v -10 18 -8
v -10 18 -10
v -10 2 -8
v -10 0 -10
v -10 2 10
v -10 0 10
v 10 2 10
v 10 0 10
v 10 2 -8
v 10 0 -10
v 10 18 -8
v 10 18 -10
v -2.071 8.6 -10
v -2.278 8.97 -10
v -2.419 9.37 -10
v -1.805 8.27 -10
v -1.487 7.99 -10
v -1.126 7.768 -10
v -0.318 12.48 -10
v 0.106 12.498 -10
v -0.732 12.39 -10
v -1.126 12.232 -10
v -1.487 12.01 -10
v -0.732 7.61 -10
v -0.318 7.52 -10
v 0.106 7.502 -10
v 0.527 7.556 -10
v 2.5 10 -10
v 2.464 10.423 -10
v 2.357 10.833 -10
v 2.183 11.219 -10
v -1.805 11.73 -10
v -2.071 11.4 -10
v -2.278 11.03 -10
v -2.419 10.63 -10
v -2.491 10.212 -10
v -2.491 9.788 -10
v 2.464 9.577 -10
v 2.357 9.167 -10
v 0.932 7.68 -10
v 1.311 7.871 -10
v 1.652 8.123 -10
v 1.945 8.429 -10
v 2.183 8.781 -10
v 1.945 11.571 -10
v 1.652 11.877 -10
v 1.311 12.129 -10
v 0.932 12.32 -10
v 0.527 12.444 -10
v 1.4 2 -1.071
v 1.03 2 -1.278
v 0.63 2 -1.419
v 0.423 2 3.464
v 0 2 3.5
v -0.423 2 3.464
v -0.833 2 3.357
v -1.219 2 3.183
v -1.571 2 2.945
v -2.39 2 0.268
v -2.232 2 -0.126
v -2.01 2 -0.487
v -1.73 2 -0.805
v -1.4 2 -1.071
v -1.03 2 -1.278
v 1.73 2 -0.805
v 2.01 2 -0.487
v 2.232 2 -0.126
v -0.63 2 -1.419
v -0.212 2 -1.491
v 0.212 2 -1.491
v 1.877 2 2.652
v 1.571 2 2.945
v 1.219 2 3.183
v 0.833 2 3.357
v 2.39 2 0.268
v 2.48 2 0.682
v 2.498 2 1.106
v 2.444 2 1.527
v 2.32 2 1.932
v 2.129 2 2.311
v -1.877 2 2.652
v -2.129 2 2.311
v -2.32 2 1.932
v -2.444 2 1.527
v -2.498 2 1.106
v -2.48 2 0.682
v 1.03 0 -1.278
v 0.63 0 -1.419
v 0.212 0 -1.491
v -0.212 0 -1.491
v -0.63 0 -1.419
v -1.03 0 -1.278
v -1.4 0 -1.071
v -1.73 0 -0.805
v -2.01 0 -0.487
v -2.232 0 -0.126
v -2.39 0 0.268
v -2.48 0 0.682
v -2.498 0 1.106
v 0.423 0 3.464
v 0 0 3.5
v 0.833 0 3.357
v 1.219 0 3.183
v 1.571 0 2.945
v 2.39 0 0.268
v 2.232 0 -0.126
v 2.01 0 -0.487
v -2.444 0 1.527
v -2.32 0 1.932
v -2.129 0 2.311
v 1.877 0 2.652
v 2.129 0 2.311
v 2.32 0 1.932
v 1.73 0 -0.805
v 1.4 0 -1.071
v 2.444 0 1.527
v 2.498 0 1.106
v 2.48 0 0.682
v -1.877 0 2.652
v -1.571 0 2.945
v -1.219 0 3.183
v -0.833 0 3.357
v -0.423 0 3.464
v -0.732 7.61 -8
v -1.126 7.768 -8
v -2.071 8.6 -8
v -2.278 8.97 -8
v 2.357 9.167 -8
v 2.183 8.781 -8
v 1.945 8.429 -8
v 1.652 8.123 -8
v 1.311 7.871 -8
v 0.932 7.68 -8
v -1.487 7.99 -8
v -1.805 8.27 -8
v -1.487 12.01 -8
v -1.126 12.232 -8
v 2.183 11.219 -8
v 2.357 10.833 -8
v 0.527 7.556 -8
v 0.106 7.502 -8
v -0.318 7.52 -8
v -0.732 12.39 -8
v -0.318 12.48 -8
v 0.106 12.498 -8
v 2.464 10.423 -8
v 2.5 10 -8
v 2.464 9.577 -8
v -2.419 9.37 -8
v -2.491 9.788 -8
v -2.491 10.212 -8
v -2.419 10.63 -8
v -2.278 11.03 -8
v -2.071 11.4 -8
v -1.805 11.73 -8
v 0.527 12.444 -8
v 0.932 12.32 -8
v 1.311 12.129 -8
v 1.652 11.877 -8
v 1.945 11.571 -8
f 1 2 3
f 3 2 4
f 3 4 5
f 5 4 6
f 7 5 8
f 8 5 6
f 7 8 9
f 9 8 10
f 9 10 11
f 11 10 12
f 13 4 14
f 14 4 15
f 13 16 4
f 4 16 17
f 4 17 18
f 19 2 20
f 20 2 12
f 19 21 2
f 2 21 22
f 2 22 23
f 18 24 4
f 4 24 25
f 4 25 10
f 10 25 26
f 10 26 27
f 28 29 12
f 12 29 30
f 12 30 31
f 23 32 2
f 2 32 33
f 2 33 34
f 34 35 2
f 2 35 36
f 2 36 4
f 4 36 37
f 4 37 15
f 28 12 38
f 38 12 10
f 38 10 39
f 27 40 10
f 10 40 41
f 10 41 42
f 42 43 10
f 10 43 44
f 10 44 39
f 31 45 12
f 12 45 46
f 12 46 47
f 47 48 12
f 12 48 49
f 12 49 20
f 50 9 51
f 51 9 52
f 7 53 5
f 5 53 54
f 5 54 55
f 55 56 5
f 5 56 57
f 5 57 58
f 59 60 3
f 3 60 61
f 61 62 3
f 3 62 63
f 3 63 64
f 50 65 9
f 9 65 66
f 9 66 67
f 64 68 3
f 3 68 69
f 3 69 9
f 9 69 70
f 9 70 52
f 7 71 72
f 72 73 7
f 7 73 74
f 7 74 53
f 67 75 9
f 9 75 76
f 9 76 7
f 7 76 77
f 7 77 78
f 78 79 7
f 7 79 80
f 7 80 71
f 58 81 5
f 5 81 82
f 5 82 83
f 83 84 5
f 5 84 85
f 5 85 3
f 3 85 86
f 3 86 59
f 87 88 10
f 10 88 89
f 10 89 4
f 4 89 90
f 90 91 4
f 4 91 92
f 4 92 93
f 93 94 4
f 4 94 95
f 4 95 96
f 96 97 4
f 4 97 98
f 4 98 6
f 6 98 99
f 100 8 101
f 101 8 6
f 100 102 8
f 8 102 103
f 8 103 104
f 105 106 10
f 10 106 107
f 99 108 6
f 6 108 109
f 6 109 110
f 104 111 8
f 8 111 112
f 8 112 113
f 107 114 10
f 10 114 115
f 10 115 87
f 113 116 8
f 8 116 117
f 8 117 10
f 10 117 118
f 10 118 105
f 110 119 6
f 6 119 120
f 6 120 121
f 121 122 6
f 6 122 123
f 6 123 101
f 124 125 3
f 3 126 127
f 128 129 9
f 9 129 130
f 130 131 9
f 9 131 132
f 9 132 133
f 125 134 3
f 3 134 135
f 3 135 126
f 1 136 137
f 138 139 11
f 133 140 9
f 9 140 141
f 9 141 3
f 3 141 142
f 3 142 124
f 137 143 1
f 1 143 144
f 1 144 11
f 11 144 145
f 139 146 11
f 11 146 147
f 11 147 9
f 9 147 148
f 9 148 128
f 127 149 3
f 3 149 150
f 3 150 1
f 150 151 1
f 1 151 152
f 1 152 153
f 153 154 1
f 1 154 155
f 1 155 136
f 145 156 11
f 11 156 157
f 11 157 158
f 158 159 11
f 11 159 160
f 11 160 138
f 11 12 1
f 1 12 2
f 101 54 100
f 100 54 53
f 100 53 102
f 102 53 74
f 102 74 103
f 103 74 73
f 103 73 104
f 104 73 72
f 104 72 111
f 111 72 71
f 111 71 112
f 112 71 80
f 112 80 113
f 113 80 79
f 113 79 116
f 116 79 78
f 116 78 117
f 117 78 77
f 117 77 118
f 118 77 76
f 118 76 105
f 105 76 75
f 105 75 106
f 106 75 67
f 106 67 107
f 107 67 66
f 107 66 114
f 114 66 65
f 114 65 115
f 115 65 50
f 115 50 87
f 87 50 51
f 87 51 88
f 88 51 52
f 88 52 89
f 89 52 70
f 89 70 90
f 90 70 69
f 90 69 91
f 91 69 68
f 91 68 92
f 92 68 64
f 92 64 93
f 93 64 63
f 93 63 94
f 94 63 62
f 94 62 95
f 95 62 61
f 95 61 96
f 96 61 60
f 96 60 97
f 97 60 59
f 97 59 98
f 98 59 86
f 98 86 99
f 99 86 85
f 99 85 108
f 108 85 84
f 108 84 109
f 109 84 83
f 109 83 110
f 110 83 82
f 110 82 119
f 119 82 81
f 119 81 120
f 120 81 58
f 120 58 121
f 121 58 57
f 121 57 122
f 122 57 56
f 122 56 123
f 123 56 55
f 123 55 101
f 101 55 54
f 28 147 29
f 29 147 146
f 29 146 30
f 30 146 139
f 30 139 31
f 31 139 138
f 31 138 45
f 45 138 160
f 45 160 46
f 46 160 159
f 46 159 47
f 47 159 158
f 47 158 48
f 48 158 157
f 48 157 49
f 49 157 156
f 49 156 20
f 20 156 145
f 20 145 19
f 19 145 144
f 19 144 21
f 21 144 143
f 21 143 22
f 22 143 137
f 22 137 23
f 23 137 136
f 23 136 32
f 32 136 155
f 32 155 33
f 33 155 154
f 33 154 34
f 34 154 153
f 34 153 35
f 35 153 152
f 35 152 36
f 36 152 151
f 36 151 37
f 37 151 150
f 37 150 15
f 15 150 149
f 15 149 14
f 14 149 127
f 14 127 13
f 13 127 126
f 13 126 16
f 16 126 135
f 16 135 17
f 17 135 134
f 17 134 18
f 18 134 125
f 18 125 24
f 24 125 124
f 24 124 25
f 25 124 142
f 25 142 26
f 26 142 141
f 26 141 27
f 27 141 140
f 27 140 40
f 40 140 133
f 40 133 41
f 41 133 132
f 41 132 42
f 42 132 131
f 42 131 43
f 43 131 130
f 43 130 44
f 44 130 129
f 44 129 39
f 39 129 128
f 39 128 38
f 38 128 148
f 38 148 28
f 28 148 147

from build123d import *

# Parameters (mm, degrees)
SKETCH1_W           = 20
SKETCH1_H           = 20
BOSS_EXTRUDE1_DEPTH = 2
SKETCH2_W           = 20
SKETCH2_H           = 2
BOSS_EXTRUDE2_DEPTH = 16
SKETCH3_R           = 2.5
CUT_EXTRUDE1_DEPTH  = 22.354156504
SKETCH4_R           = 2.5
CUT_EXTRUDE2_DEPTH  = 28.349588662


with BuildPart() as part:
    # Sketch1 → Boss-Extrude1 (new body)
    with BuildSketch(Plane(origin=(0, 0, 0), x_dir=(1, 0, 0), z_dir=(0, 1, 0))):
        Rectangle(SKETCH1_W, SKETCH1_H)
    extrude(amount=BOSS_EXTRUDE1_DEPTH)

    # Sketch2 → Boss-Extrude2 (add)
    with BuildSketch(Plane(origin=(0, 2, 0), x_dir=(1, 0, 0), z_dir=(0, 1, 0))):
        with Locations((0, 9)):
            Rectangle(SKETCH2_W, SKETCH2_H)
    extrude(amount=BOSS_EXTRUDE2_DEPTH)

    # Sketch3 → Cut-Extrude1 (cut, through all)
    with BuildSketch(Plane(origin=(0, 2, 0), x_dir=(1, 0, 0), z_dir=(0, 1, 0))):
        with Locations(Location((0, -1, 0), (0, 0, 270))):
            Circle(SKETCH3_R)
    extrude(amount=-CUT_EXTRUDE1_DEPTH, mode=Mode.SUBTRACT)

    # Sketch4 → Cut-Extrude2 (cut, through all)
    with BuildSketch(Plane.XY.offset(-8)):
        with Locations((0, 10)):
            Circle(SKETCH4_R)
    extrude(amount=-CUT_EXTRUDE2_DEPTH, mode=Mode.SUBTRACT)


solid = part.part
